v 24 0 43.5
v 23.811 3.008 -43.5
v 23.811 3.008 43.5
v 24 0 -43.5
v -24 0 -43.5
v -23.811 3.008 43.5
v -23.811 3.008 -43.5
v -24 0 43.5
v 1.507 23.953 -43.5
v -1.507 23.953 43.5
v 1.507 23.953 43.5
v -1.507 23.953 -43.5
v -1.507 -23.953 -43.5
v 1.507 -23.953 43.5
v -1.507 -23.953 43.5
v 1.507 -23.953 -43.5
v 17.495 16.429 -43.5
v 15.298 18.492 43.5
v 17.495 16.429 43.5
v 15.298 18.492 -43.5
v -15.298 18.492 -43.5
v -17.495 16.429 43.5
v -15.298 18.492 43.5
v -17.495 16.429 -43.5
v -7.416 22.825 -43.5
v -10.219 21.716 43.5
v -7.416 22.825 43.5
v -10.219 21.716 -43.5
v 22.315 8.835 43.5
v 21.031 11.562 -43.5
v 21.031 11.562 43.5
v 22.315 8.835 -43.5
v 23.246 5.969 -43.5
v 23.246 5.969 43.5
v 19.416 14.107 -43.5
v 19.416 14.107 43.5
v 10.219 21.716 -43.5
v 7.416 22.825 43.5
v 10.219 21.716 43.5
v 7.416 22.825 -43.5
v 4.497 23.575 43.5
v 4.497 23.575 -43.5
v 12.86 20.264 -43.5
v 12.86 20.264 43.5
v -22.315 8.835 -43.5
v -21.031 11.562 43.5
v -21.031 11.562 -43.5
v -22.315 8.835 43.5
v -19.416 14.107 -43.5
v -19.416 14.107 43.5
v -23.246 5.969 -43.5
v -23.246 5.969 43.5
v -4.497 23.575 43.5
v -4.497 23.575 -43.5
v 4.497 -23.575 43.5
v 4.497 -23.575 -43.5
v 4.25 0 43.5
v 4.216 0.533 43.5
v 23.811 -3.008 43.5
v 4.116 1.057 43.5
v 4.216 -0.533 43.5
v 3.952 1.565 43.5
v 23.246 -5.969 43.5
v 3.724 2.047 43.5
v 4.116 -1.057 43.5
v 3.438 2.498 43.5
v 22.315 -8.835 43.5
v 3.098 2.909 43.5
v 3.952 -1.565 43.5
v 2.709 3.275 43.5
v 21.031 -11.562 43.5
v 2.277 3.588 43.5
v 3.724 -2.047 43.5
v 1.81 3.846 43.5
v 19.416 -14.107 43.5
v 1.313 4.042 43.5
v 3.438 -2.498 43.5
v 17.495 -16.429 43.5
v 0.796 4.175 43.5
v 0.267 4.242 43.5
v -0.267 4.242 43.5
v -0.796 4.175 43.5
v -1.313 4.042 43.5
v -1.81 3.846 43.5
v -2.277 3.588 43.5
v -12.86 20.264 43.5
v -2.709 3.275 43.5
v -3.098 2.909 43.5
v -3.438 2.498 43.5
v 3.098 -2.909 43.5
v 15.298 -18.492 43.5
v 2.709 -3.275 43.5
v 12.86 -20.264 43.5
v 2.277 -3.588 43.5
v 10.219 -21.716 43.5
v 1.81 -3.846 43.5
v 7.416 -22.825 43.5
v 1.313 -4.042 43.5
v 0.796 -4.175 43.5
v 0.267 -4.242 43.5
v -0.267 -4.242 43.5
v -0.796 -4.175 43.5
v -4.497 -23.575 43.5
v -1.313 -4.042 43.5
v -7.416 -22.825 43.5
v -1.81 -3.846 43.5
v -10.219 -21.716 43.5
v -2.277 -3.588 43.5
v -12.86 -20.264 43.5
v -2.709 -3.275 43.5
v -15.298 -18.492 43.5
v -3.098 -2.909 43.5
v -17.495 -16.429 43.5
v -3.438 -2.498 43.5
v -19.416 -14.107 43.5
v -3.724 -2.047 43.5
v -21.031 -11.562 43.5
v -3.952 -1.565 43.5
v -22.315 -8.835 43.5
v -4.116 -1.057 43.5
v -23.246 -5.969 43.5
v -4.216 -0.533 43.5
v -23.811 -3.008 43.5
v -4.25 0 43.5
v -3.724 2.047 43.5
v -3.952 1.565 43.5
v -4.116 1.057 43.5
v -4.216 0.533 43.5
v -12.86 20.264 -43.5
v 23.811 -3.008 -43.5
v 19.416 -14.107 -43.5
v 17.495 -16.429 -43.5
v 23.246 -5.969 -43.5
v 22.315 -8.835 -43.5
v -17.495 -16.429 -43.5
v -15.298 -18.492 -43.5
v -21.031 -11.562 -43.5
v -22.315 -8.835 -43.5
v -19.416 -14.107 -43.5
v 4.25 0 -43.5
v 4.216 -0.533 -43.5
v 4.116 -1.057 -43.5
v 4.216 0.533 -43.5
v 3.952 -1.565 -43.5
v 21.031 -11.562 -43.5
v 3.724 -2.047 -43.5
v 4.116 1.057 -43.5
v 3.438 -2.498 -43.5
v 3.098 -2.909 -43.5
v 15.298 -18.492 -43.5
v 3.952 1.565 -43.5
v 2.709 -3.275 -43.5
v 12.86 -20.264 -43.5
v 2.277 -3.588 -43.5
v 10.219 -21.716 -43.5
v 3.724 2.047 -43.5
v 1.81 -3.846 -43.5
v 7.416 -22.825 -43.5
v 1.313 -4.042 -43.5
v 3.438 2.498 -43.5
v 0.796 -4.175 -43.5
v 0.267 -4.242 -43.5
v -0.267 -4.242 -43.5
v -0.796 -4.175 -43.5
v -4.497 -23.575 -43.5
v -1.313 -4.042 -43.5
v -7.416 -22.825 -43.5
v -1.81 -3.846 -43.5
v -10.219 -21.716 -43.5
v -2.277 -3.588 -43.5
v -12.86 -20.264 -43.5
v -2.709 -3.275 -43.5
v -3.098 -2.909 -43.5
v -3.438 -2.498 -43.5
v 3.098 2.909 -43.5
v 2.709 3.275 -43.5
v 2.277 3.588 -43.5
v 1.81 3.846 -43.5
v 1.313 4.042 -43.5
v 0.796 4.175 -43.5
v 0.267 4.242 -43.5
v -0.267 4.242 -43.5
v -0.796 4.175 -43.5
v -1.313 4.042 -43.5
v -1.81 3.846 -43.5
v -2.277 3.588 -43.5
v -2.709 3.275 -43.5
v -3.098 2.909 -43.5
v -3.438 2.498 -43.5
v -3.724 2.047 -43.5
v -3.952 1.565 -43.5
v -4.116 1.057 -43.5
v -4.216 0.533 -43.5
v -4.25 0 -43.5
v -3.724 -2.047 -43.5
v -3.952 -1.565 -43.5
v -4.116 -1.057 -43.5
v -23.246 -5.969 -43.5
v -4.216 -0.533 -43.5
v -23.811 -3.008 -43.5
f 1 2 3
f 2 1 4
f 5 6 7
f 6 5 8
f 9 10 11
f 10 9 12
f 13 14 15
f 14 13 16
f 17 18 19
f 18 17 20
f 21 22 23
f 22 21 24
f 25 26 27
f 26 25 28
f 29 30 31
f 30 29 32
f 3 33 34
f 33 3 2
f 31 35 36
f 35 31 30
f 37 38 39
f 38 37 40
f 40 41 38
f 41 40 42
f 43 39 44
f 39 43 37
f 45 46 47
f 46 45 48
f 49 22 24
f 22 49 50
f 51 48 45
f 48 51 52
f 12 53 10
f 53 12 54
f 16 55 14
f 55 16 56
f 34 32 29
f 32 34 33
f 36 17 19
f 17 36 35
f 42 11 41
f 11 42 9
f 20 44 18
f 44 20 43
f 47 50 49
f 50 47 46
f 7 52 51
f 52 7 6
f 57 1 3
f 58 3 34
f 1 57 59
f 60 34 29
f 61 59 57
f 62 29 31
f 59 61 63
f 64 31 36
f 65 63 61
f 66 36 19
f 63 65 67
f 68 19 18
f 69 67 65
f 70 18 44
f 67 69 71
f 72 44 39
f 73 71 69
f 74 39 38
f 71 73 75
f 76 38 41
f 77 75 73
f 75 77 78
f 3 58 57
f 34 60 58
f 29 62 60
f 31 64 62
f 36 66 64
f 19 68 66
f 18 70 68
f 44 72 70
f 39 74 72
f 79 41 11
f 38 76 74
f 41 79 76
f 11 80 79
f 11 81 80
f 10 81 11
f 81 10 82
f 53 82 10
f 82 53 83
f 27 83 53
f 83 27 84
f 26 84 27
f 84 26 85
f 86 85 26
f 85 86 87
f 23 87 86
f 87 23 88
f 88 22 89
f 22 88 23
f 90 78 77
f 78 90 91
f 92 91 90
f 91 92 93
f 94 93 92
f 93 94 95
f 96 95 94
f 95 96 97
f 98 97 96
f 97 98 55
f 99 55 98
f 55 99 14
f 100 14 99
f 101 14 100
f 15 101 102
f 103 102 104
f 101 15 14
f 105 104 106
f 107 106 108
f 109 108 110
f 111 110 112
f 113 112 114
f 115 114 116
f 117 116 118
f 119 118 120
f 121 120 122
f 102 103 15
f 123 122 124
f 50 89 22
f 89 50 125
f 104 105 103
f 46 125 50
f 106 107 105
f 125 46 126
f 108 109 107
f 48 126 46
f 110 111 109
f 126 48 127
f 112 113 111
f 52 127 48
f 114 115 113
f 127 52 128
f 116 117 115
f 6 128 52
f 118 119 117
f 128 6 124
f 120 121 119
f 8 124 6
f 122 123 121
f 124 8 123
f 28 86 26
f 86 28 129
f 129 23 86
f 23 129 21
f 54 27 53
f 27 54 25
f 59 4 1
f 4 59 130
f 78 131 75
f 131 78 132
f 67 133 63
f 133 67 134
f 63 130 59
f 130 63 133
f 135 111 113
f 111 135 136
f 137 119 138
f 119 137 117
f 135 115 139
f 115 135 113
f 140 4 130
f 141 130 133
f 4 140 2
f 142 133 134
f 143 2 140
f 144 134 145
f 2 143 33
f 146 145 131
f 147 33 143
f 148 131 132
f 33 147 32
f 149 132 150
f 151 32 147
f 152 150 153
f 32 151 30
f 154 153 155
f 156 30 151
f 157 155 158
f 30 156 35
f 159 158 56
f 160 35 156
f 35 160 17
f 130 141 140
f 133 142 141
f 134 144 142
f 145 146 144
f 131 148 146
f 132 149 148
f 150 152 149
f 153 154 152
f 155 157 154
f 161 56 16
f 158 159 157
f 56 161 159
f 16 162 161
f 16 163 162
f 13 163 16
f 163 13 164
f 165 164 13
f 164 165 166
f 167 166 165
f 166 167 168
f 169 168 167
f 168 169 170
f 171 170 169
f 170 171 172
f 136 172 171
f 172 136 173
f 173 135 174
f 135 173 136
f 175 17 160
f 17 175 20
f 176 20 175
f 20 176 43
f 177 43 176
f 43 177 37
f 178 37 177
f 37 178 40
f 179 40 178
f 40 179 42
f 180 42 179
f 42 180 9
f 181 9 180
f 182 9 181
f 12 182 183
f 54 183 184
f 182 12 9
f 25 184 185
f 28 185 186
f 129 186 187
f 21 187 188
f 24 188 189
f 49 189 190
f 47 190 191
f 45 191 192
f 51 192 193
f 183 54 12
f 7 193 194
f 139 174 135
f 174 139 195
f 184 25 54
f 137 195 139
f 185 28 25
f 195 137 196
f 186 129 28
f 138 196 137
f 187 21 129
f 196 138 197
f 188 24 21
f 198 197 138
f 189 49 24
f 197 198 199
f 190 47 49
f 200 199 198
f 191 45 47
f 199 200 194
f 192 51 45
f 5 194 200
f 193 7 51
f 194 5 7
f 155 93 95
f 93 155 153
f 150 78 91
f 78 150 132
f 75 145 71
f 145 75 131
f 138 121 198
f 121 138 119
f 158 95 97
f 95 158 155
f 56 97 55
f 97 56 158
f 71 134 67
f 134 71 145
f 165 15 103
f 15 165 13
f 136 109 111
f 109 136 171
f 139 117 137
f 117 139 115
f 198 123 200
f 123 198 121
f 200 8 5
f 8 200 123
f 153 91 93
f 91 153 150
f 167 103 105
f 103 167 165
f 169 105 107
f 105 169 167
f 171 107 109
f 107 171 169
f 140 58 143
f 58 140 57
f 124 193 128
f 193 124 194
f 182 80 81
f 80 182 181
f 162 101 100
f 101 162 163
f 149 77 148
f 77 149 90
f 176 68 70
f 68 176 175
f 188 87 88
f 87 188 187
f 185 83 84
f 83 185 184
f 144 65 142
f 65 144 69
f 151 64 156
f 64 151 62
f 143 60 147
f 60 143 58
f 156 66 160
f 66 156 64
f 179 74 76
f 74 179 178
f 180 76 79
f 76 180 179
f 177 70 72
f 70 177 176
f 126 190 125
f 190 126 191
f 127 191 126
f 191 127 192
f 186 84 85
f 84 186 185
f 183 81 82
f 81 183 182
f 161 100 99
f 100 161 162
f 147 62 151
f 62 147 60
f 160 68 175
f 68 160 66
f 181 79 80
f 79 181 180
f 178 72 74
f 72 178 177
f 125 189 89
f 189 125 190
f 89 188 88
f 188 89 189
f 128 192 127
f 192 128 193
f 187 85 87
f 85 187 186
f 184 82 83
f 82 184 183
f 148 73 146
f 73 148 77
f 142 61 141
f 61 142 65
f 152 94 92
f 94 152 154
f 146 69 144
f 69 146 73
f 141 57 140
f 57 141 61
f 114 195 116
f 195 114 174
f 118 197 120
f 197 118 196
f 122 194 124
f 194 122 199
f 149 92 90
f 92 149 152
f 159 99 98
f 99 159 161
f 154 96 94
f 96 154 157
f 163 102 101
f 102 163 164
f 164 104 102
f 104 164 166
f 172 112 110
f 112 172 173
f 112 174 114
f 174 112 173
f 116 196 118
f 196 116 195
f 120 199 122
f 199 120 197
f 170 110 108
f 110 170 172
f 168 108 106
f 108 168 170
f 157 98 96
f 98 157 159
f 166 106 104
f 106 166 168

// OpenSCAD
$fn = 50;


difference() {
	union() {
		translate(v = [0, 0, -43.5000000000]) {
			cylinder(h = 87, r = 24.0000000000);
		}
	}
	union() {
		translate(v = [0, 0, -100.0000000000]) {
			cylinder(h = 200, r = 4.2500000000);
		}
	}
}
